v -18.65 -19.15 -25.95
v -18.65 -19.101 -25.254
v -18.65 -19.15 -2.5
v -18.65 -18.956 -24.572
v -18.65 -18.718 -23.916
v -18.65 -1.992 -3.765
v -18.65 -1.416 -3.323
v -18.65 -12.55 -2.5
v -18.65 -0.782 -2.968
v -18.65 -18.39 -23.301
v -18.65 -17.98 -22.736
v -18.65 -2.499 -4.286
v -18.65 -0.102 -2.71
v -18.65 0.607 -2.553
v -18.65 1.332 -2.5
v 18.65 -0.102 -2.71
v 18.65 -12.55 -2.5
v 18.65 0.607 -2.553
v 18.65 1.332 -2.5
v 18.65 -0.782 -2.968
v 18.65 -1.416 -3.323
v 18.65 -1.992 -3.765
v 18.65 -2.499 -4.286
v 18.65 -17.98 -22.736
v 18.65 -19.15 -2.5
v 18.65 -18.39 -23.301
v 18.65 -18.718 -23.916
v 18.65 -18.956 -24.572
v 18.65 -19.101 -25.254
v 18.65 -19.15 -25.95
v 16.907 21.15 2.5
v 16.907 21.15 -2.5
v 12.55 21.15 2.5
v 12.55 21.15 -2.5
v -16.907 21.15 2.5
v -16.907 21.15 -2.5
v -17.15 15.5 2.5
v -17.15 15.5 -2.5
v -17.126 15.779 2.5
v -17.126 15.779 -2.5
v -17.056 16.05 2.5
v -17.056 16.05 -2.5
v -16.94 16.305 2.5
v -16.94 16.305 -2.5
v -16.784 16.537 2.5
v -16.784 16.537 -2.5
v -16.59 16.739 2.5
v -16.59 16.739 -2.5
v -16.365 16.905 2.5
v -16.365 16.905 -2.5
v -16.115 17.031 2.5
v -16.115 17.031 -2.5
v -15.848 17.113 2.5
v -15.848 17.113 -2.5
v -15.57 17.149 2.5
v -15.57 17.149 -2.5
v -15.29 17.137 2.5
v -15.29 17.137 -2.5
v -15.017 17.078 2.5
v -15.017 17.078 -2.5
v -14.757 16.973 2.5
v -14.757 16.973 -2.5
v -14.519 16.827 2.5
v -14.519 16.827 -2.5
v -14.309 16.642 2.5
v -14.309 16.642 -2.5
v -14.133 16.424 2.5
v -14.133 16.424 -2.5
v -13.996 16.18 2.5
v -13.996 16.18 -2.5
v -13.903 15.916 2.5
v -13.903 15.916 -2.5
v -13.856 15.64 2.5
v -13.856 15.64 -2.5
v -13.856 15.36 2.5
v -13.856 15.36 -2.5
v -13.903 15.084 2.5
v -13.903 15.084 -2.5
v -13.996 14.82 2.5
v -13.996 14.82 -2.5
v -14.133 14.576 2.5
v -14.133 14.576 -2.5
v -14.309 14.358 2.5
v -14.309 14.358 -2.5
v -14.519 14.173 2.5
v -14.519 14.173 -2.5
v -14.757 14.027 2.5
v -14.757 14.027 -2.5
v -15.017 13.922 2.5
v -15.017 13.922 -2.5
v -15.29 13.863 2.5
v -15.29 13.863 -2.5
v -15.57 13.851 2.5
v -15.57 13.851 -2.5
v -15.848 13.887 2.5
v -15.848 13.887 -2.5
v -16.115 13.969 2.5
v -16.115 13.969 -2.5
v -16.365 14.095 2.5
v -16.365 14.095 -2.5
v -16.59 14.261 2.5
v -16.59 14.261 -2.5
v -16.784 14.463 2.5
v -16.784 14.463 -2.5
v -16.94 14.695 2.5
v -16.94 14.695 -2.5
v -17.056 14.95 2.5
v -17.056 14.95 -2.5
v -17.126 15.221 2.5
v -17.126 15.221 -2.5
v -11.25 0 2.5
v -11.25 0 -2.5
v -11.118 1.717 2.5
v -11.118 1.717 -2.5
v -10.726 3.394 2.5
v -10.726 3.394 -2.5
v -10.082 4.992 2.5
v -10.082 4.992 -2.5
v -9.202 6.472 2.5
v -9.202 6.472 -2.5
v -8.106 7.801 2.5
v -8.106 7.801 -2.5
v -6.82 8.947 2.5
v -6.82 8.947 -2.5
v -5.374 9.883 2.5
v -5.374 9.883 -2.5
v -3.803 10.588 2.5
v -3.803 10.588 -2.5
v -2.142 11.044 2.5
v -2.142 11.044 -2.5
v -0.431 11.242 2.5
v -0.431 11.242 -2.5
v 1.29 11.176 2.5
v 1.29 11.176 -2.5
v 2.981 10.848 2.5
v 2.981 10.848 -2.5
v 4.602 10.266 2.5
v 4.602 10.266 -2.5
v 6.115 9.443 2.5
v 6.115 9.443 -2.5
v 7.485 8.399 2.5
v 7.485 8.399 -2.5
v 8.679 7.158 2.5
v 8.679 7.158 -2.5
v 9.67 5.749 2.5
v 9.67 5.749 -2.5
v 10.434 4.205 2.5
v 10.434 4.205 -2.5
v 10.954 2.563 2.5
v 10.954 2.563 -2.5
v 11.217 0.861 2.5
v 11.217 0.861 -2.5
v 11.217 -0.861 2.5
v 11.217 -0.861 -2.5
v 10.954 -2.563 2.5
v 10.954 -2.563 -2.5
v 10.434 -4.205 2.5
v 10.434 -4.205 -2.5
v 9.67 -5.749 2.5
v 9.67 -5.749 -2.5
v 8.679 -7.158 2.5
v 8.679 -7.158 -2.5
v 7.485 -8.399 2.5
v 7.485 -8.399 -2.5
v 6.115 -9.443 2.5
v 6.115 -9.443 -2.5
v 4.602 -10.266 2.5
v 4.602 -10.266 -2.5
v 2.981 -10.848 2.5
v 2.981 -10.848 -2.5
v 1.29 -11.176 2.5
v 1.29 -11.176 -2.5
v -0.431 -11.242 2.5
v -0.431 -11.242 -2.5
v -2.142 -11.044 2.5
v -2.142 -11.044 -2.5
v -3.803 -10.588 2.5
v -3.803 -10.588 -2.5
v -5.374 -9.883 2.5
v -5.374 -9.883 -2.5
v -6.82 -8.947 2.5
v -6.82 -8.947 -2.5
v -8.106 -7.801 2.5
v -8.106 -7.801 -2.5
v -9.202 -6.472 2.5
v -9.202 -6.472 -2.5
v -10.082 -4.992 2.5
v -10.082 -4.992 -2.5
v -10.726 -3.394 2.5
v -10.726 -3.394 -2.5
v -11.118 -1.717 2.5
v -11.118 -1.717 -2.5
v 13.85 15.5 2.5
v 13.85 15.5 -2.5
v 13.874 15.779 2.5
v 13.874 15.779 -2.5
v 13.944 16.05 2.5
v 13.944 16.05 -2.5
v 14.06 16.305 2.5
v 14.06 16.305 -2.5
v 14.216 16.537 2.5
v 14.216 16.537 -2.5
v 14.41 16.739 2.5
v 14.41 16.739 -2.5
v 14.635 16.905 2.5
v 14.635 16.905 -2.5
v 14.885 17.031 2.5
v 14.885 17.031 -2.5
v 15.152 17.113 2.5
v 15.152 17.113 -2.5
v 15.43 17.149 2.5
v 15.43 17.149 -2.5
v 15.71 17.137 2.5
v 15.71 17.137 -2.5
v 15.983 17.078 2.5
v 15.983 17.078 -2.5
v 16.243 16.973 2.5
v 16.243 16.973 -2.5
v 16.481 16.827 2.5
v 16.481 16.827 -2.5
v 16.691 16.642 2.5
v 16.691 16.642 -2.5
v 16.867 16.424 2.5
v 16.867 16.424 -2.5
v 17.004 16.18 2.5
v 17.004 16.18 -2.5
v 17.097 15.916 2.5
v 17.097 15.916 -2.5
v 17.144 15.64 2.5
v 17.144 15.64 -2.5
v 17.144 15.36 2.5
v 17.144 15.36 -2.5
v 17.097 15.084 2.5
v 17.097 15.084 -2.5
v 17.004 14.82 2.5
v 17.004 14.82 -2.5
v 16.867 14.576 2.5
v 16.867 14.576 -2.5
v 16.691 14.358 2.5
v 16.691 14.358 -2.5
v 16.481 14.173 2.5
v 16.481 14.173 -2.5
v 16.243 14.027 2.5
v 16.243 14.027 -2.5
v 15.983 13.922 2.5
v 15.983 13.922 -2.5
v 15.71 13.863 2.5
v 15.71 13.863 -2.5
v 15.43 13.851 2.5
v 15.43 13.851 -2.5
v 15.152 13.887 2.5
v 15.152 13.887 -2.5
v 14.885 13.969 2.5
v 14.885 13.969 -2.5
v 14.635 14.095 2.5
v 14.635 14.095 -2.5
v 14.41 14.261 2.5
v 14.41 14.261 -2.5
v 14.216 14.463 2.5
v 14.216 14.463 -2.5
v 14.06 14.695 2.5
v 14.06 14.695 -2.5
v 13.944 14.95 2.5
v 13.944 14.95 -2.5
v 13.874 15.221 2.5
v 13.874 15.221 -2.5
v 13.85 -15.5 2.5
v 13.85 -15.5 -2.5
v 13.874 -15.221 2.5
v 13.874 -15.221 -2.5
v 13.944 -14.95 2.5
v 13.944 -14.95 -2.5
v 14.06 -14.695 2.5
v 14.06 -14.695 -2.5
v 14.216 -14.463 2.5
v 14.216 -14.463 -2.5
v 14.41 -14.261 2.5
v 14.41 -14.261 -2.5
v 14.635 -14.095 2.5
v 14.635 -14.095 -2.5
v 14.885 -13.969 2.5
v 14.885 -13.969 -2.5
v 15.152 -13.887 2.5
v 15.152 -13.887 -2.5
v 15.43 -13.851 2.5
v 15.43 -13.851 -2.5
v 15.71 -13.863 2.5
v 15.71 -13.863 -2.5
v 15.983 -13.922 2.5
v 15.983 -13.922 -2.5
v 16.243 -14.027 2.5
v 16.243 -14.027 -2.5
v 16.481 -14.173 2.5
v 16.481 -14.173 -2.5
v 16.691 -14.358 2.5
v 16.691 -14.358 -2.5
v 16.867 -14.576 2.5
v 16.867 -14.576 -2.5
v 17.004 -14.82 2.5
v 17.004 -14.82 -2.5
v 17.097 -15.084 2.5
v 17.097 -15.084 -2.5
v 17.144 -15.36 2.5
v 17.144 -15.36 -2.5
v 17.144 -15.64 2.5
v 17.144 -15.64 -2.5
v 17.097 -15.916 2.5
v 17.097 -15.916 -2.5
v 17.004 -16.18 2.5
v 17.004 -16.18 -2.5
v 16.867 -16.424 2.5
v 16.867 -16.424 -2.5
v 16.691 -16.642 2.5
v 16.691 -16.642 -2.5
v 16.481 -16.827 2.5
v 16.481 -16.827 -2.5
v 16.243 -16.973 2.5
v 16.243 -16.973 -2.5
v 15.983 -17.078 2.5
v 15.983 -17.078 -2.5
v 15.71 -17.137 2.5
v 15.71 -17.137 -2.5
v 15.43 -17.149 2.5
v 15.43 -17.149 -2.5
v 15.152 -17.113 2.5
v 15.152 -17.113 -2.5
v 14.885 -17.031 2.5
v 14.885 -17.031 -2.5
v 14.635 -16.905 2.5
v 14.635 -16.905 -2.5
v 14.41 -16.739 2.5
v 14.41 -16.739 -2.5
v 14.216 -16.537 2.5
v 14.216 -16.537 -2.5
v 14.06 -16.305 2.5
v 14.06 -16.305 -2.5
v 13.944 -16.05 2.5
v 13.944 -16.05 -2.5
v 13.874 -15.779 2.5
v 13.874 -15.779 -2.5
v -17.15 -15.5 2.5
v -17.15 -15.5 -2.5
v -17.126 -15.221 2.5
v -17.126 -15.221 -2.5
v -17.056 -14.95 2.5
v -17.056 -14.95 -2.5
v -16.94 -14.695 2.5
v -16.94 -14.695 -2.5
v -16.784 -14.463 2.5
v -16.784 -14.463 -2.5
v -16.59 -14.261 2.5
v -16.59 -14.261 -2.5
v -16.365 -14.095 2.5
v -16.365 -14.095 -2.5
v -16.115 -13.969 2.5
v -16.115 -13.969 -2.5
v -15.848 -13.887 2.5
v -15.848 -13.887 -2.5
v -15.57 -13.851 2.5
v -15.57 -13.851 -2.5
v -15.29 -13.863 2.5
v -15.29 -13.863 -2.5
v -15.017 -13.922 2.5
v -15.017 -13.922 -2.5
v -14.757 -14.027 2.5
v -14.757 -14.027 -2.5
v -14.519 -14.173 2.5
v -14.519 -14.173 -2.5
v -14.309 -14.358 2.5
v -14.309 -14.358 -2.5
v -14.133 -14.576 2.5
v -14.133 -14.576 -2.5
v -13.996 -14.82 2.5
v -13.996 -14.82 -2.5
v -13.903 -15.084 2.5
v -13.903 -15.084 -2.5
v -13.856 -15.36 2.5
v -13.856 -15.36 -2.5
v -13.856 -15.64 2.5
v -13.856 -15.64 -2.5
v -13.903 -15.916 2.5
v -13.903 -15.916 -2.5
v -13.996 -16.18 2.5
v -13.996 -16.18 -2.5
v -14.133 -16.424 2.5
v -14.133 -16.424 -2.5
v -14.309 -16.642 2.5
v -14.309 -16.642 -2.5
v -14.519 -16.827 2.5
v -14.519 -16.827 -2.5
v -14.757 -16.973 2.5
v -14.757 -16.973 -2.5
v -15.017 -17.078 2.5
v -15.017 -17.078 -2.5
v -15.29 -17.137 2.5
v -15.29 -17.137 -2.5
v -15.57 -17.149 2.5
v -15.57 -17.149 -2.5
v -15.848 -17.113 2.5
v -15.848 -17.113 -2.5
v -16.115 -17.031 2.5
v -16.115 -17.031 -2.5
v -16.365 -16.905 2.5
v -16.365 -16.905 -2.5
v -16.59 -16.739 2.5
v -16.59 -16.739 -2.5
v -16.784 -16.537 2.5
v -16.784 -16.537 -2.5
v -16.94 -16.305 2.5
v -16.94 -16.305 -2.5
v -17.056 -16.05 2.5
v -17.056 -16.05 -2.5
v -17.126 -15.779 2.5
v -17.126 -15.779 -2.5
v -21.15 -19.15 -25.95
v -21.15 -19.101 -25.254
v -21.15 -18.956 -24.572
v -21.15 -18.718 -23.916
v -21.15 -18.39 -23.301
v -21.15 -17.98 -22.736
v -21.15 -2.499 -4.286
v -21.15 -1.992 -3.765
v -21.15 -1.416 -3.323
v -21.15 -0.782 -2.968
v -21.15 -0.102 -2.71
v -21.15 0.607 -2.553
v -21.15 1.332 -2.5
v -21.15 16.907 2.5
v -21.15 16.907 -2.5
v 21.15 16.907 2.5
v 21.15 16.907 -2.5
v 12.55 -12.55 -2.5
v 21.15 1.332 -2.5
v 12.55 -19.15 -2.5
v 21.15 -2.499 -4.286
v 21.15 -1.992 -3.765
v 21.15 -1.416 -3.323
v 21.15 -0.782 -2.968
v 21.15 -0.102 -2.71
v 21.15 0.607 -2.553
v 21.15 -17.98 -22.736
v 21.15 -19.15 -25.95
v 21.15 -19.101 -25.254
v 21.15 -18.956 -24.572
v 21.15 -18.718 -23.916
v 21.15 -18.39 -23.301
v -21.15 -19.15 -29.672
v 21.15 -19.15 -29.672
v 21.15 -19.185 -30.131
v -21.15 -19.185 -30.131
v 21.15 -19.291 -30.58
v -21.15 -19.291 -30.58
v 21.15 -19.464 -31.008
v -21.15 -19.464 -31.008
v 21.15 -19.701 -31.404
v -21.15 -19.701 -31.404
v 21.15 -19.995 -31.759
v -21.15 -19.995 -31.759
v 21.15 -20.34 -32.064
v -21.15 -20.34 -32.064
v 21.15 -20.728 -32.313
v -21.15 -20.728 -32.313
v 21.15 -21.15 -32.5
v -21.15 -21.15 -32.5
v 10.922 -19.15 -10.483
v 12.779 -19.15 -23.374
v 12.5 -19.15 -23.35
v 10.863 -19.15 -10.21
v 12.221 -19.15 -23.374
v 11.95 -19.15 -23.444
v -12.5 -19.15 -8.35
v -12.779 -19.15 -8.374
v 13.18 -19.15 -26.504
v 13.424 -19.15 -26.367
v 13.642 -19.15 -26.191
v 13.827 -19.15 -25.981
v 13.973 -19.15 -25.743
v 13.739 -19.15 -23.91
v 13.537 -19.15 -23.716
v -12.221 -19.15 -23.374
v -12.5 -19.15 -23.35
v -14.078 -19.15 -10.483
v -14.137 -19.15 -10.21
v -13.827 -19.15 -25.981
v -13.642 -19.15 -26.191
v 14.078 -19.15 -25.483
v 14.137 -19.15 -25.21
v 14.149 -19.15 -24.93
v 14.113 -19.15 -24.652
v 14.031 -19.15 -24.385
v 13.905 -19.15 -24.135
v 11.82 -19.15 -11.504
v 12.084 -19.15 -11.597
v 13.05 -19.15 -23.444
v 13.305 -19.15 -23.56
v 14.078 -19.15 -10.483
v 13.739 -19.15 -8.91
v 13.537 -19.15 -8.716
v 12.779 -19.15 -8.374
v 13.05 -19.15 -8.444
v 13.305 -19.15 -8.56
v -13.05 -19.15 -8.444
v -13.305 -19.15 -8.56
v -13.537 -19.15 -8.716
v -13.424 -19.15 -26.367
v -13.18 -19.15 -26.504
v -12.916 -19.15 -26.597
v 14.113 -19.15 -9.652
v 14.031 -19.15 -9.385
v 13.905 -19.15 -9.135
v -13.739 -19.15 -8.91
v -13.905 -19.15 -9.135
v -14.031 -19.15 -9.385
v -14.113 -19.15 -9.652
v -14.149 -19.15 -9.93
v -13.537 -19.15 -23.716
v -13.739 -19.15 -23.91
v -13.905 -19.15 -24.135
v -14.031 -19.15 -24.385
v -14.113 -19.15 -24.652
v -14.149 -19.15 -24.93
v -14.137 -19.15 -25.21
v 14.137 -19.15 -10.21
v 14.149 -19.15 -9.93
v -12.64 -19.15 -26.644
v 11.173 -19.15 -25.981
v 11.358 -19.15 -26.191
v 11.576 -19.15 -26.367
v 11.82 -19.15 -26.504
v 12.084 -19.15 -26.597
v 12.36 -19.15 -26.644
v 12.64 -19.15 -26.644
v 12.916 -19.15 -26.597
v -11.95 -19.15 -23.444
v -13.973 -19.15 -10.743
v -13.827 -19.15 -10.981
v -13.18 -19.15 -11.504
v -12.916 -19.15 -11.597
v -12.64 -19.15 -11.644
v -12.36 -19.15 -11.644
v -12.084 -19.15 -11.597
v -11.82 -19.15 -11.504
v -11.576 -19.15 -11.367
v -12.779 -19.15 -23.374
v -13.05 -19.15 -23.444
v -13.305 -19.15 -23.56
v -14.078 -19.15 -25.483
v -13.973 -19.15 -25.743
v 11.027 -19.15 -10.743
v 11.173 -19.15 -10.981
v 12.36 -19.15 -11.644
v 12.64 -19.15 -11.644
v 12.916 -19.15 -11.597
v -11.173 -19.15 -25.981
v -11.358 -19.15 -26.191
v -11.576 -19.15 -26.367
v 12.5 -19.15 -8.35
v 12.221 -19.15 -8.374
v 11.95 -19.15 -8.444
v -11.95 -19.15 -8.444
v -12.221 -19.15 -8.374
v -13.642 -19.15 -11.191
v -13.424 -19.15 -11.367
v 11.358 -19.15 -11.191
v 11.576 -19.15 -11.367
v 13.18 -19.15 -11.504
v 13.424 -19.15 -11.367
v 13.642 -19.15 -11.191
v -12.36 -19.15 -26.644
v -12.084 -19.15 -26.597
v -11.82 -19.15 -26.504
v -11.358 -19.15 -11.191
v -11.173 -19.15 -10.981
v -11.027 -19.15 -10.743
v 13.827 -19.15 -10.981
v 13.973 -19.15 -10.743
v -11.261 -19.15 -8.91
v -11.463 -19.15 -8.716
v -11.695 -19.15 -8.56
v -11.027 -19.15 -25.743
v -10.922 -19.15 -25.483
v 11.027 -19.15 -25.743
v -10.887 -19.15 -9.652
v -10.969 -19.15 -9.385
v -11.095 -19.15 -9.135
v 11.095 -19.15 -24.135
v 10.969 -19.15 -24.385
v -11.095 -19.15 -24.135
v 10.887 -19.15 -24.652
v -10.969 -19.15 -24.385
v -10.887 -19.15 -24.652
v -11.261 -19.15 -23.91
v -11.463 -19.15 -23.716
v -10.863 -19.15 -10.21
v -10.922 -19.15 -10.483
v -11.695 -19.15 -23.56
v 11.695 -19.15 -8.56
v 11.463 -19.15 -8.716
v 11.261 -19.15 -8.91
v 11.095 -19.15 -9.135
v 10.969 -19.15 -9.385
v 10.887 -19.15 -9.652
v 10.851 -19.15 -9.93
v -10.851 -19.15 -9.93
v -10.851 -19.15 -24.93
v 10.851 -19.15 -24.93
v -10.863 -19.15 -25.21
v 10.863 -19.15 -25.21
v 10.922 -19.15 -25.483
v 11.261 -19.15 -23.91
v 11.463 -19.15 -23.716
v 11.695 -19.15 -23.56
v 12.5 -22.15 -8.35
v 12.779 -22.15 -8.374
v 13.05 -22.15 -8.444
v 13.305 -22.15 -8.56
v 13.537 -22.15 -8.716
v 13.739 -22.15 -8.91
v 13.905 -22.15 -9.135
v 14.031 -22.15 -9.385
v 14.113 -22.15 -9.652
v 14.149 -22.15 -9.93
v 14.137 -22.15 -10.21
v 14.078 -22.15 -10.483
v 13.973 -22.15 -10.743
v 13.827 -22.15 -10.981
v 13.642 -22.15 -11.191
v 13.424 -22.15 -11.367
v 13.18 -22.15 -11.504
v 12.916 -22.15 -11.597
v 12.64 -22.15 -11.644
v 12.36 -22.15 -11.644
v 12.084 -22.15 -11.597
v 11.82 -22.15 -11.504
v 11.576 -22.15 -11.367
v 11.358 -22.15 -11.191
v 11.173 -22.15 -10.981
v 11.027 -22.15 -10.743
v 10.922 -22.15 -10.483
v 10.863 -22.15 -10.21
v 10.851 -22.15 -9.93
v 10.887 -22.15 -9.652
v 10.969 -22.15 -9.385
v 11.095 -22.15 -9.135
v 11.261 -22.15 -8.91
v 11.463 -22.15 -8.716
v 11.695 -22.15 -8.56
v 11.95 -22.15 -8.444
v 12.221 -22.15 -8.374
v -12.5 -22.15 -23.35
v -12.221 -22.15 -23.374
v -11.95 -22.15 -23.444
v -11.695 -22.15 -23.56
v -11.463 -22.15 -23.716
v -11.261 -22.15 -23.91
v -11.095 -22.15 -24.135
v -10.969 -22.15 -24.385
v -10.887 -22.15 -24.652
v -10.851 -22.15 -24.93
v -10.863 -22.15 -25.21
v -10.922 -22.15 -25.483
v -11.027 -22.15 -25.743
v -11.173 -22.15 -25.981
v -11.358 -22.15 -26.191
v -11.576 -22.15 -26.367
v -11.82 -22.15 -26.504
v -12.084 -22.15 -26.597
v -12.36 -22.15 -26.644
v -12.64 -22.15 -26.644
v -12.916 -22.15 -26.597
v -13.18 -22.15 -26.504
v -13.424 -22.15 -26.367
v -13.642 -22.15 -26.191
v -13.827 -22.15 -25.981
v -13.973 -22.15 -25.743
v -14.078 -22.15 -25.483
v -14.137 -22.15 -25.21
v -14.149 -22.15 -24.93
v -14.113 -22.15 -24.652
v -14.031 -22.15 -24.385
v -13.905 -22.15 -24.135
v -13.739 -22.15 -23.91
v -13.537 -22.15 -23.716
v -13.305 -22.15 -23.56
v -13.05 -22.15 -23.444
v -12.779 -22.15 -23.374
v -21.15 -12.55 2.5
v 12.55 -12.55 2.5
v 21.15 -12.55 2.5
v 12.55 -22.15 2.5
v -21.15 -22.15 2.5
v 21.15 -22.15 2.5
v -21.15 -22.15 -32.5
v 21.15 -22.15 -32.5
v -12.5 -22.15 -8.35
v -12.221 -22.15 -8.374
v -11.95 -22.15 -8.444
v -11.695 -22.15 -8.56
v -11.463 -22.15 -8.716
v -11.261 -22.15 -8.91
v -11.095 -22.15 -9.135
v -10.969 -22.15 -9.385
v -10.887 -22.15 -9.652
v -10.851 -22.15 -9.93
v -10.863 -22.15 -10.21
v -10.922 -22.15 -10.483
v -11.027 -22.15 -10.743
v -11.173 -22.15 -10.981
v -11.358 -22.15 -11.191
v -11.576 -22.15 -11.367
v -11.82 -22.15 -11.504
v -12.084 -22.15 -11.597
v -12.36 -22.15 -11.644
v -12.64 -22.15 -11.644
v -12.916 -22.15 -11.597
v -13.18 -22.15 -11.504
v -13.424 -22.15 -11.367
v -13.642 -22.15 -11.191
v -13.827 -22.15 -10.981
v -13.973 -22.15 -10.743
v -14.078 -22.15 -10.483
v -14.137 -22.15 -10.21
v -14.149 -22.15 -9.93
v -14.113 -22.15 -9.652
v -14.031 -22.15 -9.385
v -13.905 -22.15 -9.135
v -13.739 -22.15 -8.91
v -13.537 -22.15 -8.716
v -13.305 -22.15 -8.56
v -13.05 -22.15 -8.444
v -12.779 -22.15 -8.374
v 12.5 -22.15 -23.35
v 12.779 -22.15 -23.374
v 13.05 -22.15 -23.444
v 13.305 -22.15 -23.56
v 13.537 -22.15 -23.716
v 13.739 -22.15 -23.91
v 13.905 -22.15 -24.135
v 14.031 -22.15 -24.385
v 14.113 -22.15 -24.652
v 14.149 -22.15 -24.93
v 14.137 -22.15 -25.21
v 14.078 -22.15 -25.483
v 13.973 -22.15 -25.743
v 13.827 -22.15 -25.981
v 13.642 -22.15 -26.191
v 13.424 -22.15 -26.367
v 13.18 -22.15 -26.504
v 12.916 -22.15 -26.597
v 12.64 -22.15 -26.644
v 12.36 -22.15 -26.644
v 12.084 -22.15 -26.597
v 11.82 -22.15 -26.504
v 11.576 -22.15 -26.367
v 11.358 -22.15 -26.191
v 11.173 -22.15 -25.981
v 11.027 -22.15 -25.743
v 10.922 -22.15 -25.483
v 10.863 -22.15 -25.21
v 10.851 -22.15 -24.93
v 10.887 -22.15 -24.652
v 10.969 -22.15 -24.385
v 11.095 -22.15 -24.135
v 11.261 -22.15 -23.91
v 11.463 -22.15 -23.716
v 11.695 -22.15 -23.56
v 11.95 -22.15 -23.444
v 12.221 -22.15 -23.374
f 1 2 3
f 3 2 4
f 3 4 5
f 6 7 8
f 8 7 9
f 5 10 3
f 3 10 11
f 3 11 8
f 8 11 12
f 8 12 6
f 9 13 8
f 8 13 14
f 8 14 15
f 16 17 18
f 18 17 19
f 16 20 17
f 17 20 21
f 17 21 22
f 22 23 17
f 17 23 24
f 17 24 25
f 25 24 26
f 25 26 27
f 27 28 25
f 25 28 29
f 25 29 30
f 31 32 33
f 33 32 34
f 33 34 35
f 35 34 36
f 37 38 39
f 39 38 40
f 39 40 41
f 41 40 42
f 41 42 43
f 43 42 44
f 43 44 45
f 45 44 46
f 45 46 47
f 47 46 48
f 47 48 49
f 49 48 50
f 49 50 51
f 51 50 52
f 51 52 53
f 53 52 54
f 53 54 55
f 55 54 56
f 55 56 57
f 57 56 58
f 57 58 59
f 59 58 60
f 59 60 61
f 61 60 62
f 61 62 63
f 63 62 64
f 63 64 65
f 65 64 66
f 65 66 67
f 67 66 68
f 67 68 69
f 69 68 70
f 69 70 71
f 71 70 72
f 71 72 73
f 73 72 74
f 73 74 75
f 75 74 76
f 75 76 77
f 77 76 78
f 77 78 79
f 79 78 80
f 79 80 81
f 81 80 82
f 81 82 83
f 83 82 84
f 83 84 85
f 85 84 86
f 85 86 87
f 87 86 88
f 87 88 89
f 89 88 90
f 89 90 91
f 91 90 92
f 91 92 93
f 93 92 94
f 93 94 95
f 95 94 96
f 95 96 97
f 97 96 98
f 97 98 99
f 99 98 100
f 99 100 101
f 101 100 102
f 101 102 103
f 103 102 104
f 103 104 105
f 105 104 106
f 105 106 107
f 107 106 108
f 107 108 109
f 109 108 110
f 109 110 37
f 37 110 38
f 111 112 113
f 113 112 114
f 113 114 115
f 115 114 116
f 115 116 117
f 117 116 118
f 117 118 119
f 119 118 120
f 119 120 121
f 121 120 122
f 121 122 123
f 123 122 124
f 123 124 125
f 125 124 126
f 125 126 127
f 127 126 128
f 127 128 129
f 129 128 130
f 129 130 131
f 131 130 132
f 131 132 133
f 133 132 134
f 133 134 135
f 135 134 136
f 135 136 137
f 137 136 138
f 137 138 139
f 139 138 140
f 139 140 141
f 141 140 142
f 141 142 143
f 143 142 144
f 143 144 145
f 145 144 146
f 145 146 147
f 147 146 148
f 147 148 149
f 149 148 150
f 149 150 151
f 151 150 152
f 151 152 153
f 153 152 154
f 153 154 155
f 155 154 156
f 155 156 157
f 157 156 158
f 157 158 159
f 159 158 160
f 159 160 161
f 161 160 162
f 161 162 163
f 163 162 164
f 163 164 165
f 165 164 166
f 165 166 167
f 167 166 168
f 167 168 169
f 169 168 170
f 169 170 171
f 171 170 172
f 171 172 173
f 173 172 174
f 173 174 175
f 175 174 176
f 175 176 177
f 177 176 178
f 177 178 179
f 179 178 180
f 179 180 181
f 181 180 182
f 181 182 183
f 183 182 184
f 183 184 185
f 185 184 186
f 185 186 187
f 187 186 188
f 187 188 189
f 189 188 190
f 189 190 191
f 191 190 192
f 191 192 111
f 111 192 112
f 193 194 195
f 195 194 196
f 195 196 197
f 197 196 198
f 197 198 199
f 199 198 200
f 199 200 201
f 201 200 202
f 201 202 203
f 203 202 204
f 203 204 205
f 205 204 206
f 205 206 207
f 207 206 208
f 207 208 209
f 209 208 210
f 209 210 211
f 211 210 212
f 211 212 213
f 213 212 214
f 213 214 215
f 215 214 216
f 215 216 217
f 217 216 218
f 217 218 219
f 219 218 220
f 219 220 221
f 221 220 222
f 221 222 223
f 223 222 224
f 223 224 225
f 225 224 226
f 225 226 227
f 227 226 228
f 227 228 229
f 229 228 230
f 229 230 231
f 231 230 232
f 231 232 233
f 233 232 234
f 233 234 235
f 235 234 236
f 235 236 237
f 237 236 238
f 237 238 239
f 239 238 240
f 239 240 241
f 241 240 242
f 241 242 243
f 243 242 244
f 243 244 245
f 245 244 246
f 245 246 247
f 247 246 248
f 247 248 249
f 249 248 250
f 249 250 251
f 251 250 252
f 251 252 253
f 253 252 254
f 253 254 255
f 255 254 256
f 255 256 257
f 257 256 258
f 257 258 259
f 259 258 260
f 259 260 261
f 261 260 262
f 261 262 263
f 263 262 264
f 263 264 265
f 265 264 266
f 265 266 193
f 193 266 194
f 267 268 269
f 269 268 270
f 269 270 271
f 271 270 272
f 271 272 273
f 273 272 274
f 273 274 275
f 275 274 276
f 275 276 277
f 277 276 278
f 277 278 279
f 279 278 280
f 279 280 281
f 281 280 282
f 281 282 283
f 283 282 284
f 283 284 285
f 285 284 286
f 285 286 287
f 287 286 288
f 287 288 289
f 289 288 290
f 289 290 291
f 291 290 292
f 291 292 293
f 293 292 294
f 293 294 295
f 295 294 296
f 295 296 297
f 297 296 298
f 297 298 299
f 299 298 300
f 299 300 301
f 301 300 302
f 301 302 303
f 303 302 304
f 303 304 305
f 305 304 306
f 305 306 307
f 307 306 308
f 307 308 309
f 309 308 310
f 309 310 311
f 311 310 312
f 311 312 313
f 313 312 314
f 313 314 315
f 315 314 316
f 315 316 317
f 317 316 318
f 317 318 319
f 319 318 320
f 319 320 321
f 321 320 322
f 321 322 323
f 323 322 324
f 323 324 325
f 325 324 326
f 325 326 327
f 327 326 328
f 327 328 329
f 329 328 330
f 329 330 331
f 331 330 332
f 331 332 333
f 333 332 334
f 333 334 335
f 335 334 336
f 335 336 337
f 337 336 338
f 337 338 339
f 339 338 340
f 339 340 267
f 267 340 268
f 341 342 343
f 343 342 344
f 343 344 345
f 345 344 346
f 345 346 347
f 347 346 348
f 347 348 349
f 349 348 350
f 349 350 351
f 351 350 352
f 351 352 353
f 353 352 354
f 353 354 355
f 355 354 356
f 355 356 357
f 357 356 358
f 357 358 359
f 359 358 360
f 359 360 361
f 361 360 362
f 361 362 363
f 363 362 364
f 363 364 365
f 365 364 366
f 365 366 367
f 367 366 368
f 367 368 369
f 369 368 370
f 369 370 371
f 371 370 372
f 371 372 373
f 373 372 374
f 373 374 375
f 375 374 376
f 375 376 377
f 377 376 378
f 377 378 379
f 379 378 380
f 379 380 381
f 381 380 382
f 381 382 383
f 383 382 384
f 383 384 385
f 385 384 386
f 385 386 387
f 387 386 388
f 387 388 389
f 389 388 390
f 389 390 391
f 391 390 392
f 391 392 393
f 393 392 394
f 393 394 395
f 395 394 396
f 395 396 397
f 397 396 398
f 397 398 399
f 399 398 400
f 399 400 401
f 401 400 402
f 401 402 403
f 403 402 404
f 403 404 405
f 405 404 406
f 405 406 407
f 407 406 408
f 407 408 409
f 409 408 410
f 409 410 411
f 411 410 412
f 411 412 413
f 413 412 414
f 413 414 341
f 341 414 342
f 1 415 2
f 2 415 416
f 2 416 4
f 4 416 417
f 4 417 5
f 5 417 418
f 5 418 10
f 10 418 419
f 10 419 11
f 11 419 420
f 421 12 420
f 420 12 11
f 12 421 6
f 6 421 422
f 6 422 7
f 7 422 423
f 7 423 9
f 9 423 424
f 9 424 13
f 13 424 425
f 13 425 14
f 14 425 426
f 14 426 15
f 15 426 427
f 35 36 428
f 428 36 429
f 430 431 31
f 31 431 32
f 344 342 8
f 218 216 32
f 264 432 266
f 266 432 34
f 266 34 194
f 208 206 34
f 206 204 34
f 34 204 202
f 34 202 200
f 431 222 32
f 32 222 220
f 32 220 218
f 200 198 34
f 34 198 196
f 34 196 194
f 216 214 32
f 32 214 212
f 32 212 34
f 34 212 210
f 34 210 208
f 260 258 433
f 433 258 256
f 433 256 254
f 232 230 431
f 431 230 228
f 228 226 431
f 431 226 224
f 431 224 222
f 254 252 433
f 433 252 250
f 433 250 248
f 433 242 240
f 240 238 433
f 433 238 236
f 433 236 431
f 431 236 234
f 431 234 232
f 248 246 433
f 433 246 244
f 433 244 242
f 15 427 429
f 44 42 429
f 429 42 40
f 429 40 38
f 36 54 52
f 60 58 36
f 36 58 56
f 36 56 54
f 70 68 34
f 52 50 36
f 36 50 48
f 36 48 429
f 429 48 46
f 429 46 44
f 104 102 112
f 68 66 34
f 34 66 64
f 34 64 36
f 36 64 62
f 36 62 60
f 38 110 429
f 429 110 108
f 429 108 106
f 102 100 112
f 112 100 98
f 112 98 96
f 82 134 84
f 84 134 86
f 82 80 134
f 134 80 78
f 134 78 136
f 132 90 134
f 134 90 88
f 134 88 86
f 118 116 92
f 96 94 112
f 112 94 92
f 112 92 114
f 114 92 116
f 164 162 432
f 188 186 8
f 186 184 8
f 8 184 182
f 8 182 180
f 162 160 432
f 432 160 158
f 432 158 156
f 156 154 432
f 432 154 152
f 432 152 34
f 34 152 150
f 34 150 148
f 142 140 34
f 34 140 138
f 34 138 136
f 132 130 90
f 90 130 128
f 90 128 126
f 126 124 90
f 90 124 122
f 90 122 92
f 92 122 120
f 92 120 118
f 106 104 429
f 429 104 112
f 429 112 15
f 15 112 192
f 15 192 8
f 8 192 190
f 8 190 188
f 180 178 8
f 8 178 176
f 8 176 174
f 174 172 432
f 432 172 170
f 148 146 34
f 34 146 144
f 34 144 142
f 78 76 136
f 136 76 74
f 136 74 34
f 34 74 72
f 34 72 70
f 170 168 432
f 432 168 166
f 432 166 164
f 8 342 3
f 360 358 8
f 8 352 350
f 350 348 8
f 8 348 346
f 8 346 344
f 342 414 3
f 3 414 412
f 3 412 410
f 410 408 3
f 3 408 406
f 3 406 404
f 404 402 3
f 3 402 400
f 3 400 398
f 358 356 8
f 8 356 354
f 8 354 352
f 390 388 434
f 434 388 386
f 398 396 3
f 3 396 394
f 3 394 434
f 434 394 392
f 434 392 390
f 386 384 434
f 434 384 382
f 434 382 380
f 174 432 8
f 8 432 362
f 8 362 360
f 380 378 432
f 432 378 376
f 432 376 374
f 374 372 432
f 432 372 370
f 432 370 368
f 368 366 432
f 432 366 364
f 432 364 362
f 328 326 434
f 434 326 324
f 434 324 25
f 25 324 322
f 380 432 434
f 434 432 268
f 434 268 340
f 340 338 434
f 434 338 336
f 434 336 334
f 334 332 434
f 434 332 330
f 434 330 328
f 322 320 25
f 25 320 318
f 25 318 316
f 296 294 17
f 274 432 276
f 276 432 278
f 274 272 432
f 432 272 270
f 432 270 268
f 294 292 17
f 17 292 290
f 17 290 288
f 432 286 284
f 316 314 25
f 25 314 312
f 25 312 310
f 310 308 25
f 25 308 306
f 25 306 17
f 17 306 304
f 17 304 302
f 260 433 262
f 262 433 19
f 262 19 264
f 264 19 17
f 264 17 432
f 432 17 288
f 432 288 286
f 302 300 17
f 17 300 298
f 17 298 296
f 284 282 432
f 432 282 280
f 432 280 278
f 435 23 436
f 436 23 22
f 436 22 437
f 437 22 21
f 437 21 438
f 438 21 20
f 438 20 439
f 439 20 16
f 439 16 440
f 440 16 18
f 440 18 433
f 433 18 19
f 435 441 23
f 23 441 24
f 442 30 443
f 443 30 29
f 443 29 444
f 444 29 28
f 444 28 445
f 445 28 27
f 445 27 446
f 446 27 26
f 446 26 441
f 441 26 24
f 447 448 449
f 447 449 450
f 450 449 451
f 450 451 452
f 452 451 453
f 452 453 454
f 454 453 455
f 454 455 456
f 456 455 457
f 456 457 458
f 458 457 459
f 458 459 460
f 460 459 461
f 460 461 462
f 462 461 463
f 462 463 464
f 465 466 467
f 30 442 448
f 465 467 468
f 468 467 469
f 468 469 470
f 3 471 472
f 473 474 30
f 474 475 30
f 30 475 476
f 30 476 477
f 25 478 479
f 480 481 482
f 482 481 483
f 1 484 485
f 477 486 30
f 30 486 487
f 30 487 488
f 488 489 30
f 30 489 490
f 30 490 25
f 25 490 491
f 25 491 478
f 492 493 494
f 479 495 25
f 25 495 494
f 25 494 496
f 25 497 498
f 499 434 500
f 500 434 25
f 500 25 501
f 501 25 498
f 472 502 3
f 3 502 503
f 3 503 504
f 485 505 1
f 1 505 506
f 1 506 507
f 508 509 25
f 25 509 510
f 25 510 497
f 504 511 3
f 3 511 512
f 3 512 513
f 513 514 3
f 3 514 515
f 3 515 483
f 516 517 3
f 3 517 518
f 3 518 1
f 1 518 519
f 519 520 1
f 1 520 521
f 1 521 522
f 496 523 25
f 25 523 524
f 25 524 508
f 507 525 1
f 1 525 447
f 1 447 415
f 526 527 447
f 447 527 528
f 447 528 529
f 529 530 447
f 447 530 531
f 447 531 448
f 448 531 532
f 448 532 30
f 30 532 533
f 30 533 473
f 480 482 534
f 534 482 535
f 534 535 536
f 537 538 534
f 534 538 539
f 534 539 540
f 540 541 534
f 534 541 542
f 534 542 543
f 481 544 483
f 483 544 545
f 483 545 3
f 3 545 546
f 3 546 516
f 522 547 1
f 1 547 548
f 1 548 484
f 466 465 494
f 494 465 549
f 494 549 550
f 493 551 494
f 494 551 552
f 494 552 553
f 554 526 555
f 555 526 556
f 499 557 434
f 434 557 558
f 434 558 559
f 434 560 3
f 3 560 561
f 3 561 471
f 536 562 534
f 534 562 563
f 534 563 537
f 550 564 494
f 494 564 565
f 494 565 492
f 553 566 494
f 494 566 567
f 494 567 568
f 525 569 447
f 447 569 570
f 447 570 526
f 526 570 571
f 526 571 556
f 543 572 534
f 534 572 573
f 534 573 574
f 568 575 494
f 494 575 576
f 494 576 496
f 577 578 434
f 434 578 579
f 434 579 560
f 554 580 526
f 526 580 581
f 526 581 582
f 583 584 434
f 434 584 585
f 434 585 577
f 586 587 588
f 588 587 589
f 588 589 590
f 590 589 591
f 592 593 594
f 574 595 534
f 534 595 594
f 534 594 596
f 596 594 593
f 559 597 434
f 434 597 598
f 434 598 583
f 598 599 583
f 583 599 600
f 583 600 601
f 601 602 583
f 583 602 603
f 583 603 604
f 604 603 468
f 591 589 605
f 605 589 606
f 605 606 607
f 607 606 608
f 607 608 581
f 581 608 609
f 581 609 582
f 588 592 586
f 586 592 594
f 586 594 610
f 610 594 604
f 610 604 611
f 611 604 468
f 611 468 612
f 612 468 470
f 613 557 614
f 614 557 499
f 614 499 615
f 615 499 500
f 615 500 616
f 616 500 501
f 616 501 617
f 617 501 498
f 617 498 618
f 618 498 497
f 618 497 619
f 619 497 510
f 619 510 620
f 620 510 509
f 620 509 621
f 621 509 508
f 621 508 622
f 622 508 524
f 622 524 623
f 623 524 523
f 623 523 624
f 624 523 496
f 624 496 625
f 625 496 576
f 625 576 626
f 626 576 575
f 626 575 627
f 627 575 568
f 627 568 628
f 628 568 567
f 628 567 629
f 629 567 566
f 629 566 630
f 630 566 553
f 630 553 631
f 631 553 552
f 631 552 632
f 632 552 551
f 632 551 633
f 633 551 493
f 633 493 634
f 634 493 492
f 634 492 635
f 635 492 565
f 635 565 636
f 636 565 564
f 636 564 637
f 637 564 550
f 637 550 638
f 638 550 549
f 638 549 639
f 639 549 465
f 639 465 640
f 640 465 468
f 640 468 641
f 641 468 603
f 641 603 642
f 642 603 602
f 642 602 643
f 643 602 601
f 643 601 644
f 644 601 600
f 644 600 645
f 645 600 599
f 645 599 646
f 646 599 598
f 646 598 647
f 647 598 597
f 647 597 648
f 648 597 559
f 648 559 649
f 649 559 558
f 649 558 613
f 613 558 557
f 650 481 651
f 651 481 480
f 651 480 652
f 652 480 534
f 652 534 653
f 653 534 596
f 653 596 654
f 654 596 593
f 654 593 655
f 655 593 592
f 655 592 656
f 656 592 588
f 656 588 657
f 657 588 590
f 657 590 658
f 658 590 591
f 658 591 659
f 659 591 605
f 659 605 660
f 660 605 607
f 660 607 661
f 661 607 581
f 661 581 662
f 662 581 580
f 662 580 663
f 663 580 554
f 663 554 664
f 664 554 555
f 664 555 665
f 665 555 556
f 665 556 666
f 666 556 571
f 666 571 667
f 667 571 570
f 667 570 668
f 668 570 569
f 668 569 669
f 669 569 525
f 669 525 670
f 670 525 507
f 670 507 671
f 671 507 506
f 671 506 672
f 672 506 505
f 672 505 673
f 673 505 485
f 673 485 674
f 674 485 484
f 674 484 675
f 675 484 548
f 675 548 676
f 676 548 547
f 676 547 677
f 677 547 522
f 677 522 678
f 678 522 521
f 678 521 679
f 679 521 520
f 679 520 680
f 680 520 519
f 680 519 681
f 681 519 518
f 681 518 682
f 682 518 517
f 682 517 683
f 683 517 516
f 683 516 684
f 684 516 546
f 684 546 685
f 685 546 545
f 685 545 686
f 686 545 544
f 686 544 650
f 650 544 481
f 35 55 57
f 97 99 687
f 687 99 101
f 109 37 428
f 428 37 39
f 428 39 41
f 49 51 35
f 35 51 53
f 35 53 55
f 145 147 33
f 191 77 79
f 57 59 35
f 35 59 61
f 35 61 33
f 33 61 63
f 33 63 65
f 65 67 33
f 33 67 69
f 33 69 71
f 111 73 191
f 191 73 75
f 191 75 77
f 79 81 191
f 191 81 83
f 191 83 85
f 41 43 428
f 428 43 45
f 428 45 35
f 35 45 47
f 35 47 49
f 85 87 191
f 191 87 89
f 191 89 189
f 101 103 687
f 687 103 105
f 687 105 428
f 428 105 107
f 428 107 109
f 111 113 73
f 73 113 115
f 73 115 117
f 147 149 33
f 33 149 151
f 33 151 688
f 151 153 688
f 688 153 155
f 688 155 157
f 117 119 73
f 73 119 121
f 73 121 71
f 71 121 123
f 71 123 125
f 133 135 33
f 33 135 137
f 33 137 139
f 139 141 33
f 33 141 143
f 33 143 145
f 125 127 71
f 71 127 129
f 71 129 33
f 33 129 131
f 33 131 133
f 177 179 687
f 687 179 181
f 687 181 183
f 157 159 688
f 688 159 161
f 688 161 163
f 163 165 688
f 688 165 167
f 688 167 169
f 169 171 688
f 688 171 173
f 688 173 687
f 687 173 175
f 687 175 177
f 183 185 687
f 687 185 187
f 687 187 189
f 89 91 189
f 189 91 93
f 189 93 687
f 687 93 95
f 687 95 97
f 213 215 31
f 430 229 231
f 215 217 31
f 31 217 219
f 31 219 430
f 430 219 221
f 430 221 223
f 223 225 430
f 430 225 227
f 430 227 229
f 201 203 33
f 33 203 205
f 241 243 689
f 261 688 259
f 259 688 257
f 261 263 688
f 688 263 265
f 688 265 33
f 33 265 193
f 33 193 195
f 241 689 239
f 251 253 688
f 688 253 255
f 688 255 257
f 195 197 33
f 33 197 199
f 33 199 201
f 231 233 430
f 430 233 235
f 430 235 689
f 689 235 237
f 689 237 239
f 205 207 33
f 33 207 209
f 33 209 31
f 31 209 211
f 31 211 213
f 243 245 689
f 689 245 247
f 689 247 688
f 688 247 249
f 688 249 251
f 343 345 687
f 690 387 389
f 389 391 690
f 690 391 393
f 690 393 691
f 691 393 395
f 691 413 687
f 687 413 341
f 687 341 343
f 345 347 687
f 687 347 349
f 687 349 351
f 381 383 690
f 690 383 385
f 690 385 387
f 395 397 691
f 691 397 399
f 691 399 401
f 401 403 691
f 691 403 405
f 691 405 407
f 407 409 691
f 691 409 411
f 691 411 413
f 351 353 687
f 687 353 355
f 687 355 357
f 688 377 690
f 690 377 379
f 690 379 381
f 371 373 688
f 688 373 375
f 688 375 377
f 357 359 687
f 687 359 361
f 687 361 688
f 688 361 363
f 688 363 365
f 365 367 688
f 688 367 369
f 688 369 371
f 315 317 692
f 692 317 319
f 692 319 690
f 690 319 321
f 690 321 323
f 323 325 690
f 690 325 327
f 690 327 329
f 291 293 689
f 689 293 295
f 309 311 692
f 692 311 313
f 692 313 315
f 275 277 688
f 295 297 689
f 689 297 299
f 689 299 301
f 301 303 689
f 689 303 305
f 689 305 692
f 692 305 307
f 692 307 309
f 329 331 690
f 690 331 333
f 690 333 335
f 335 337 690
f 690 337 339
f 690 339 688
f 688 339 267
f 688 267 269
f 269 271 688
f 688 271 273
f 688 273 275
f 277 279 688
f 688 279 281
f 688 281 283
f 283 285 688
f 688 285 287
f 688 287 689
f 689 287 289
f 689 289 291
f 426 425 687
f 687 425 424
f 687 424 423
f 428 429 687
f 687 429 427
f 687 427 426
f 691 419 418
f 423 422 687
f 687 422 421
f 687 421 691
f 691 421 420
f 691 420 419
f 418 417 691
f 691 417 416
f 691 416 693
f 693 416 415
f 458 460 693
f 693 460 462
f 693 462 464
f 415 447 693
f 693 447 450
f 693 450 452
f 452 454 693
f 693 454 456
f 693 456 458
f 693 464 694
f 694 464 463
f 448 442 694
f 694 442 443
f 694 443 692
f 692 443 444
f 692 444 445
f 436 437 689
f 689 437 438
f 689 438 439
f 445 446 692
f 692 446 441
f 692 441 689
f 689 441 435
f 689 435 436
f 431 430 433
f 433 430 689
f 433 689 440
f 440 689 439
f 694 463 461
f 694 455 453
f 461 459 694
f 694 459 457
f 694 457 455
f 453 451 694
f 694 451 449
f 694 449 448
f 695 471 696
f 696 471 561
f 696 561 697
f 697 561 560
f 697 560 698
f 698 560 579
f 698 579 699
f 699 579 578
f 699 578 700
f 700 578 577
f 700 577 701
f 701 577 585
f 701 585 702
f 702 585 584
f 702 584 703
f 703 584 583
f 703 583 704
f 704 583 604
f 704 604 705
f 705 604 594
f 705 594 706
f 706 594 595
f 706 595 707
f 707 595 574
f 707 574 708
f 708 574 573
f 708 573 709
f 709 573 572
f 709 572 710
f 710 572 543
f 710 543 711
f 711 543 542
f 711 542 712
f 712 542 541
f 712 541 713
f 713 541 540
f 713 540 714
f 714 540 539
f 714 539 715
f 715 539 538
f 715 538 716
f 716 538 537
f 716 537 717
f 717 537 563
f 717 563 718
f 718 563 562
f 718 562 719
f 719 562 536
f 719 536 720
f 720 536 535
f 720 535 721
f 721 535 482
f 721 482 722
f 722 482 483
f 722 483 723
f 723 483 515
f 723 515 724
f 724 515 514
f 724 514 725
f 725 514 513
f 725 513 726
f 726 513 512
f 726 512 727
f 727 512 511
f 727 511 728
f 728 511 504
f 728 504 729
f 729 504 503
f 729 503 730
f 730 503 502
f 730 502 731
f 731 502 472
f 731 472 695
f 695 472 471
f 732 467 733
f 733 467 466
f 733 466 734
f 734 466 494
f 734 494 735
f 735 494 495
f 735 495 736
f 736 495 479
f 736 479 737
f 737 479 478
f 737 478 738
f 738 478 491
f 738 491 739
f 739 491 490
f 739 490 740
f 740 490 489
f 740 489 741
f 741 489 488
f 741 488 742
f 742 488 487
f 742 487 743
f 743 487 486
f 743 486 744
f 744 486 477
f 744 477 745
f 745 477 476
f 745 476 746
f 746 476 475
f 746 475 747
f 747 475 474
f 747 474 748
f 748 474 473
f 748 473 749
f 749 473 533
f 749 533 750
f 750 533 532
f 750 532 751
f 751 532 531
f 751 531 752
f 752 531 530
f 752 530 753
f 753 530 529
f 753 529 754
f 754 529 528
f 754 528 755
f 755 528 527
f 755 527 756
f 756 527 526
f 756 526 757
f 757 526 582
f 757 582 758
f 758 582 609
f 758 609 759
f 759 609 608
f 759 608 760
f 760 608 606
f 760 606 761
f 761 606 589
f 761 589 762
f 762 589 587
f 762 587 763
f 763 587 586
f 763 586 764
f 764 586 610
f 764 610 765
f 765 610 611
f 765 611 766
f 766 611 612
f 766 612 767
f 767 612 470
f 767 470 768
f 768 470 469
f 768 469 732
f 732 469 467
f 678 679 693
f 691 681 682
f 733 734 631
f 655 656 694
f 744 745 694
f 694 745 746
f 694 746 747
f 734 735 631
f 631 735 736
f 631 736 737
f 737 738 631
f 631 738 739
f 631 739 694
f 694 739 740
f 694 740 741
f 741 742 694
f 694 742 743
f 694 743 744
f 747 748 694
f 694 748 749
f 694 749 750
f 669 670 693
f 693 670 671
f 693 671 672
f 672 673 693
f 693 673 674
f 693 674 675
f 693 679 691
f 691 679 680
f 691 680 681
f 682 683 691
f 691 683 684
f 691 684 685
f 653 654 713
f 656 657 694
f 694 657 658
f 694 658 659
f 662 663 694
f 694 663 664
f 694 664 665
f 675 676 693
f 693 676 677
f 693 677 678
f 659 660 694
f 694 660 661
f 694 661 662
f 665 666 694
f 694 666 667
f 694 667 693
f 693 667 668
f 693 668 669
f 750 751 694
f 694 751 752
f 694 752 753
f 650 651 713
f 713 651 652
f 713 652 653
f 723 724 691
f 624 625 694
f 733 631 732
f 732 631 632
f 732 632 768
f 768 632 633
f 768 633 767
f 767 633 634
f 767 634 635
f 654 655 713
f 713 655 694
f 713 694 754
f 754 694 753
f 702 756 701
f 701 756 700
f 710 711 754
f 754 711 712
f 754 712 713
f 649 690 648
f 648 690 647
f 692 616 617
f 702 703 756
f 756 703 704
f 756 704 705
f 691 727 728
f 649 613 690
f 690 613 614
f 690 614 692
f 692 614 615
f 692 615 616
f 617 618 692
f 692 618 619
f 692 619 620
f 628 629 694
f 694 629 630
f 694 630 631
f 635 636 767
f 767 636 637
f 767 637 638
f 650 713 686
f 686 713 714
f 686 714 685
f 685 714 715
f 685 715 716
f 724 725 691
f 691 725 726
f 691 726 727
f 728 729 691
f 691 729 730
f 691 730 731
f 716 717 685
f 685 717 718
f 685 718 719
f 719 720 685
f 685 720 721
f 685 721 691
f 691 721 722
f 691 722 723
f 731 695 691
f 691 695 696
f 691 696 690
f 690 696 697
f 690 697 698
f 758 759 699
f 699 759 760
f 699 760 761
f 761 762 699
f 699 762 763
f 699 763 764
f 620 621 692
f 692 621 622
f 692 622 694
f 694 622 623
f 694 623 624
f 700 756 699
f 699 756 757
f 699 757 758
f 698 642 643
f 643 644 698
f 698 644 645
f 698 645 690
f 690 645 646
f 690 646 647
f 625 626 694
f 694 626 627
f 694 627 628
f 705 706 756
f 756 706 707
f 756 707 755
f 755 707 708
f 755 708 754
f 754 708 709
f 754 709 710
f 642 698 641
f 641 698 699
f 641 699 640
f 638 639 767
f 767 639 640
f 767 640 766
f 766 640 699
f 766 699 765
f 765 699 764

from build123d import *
from build123d.topology import SkipClean

# Parameters (mm, degrees)
SKETCH2_R           = 1.65
SKETCH2_R_2         = 11.25
BOSS_EXTRUDE2_DEPTH = 2.5
SKETCH7_W           = 42.3
SKETCH7_H           = 35
BOSS_EXTRUDE5_DEPTH = 2
BOSS_EXTRUDE6_DEPTH = 2.5
FILLET2_R           = 5
FILLET3_R           = 3
SKETCH11_R          = 1.65
CUT_EXTRUDE1_DEPTH  = 2
SKETCH12_W          = 42.3
SKETCH12_H          = 35
SKETCH12_R          = 1.65
BOSS_EXTRUDE7_DEPTH = 1


with BuildPart() as part:
    # Sketch2 → Boss-Extrude2 (new, symmetric)
    with BuildSketch(Plane.XY):
        Polygon((-21.15, 16.907359313), (-16.907359313, 21.15), (16.907359313, 21.15), (21.15, 16.907359313), (21.15, -16.907359313), (21.15, -21.15), (16.907359313, -21.15), (-16.907359313, -21.15), (-21.15, -21.15), (-21.15, -16.907359313), align=None)
        with Locations((-15.5, 15.5)):
            Circle(SKETCH2_R, mode=Mode.SUBTRACT)
        Circle(SKETCH2_R_2, mode=Mode.SUBTRACT)
        with Locations((15.5, 15.5)):
            Circle(SKETCH2_R, mode=Mode.SUBTRACT)
        with Locations((15.5, -15.5)):
            Circle(SKETCH2_R, mode=Mode.SUBTRACT)
        with Locations((-15.5, -15.5)):
            Circle(SKETCH2_R, mode=Mode.SUBTRACT)
    extrude(amount=BOSS_EXTRUDE2_DEPTH, both=True)

    # Sketch7 → Boss-Extrude5 (add)
    with BuildSketch(Plane.XZ.offset(21.15)):
        with Locations((0, -15)):
            Rectangle(SKETCH7_W, SKETCH7_H)
    extrude(amount=-BOSS_EXTRUDE5_DEPTH)

    # Sketch10 → Boss-Extrude6 (add)
    with BuildSketch(Plane(origin=(21.15, 0, 0), x_dir=(0, 0, -1), z_dir=(1, 0, 0))):
        Polygon((24.130327706, -19.15), (2.5, -1), (2.5, -19.15), align=None)
    boss_extrude6 = extrude(amount=-BOSS_EXTRUDE6_DEPTH)

    # Mirror2: Boss-Extrude6 across plane
    add(boss_extrude6.mirror(Plane(origin=(0, 0, 0), x_dir=(0, 0, 1), z_dir=(1, 0, 0))))

    # Fillet2
    fillet2_edges = [part.edges().sort_by_distance(p)[0] for p in [
        (19.9, -19.15, -24.130327706),
        (19.9, -1, -2.5),
        (-19.9, -19.15, -24.130327706),
        (-19.9, -1, -2.5),
    ]]
    fillet(fillet2_edges, radius=FILLET2_R)

    # Fillet3
    # the kernel refuses this fillet: 3 mm, written as the material it takes off along each edge
    with BuildSketch(Plane(origin=(-28.221067812, -19.15, -32.5), x_dir=(0, -1, 0), z_dir=(1, 0, 0))) as fillet3_piece_1:
        with BuildLine():
            CenterArc((3, -2.828427125), FILLET3_R, 109.471220634, 70.528779366)
            Line((0, -2.828427125), (-0.06, -2.828427125))
            Line((-0.06, -2.828427125), (-0.06, 0))
            Line((-0.06, 0), (0, 0.06))
            ThreePointArc((0, 0.06), (1, 0.06), (1.98, 0.056568542))
            Line((1.98, 0.056568542), (2, 0))
        make_face()
    extrude(amount=56.442135624, mode=Mode.SUBTRACT)

    # Sketch11 → Cut-Extrude1 (cut)
    with BuildSketch(Plane(origin=(0, -19.15, 0), x_dir=(1, 0, 0), z_dir=(0, 1, 0))):
        with Locations(Location((12.5, 10, 0), (0, 0, 270))):
            Circle(SKETCH11_R)
        with Locations(Location((12.5, 25, 0), (0, 0, 270))):
            Circle(SKETCH11_R)
        with Locations(Location((-12.5, 25, 0), (0, 0, 270))):
            Circle(SKETCH11_R)
        with Locations(Location((-12.5, 10, 0), (0, 0, 270))):
            Circle(SKETCH11_R)
    extrude(amount=-CUT_EXTRUDE1_DEPTH, mode=Mode.SUBTRACT)

    # Sketch12 → Boss-Extrude7 (add)
    with SkipClean():  # the faces are left unmerged after this step: merging them gives an invalid solid
        with BuildSketch(Plane.XZ.offset(21.15)):
            with Locations((0, -15)):
                Rectangle(SKETCH12_W, SKETCH12_H)
            with Locations(Location((-12.5, -25, 0), (0, 0, 270))):
                Circle(SKETCH12_R, mode=Mode.SUBTRACT)
            with Locations(Location((-12.5, -10, 0), (0, 0, 270))):
                Circle(SKETCH12_R, mode=Mode.SUBTRACT)
            with Locations(Location((12.5, -10, 0), (0, 0, 90))):
                Circle(SKETCH12_R, mode=Mode.SUBTRACT)
            with Locations(Location((12.5, -25, 0), (0, 0, 90))):
                Circle(SKETCH12_R, mode=Mode.SUBTRACT)
        extrude(amount=BOSS_EXTRUDE7_DEPTH)
    add(part.part.scale(1), mode=Mode.REPLACE)  # the faces are merged on a copy


solid = part.part
